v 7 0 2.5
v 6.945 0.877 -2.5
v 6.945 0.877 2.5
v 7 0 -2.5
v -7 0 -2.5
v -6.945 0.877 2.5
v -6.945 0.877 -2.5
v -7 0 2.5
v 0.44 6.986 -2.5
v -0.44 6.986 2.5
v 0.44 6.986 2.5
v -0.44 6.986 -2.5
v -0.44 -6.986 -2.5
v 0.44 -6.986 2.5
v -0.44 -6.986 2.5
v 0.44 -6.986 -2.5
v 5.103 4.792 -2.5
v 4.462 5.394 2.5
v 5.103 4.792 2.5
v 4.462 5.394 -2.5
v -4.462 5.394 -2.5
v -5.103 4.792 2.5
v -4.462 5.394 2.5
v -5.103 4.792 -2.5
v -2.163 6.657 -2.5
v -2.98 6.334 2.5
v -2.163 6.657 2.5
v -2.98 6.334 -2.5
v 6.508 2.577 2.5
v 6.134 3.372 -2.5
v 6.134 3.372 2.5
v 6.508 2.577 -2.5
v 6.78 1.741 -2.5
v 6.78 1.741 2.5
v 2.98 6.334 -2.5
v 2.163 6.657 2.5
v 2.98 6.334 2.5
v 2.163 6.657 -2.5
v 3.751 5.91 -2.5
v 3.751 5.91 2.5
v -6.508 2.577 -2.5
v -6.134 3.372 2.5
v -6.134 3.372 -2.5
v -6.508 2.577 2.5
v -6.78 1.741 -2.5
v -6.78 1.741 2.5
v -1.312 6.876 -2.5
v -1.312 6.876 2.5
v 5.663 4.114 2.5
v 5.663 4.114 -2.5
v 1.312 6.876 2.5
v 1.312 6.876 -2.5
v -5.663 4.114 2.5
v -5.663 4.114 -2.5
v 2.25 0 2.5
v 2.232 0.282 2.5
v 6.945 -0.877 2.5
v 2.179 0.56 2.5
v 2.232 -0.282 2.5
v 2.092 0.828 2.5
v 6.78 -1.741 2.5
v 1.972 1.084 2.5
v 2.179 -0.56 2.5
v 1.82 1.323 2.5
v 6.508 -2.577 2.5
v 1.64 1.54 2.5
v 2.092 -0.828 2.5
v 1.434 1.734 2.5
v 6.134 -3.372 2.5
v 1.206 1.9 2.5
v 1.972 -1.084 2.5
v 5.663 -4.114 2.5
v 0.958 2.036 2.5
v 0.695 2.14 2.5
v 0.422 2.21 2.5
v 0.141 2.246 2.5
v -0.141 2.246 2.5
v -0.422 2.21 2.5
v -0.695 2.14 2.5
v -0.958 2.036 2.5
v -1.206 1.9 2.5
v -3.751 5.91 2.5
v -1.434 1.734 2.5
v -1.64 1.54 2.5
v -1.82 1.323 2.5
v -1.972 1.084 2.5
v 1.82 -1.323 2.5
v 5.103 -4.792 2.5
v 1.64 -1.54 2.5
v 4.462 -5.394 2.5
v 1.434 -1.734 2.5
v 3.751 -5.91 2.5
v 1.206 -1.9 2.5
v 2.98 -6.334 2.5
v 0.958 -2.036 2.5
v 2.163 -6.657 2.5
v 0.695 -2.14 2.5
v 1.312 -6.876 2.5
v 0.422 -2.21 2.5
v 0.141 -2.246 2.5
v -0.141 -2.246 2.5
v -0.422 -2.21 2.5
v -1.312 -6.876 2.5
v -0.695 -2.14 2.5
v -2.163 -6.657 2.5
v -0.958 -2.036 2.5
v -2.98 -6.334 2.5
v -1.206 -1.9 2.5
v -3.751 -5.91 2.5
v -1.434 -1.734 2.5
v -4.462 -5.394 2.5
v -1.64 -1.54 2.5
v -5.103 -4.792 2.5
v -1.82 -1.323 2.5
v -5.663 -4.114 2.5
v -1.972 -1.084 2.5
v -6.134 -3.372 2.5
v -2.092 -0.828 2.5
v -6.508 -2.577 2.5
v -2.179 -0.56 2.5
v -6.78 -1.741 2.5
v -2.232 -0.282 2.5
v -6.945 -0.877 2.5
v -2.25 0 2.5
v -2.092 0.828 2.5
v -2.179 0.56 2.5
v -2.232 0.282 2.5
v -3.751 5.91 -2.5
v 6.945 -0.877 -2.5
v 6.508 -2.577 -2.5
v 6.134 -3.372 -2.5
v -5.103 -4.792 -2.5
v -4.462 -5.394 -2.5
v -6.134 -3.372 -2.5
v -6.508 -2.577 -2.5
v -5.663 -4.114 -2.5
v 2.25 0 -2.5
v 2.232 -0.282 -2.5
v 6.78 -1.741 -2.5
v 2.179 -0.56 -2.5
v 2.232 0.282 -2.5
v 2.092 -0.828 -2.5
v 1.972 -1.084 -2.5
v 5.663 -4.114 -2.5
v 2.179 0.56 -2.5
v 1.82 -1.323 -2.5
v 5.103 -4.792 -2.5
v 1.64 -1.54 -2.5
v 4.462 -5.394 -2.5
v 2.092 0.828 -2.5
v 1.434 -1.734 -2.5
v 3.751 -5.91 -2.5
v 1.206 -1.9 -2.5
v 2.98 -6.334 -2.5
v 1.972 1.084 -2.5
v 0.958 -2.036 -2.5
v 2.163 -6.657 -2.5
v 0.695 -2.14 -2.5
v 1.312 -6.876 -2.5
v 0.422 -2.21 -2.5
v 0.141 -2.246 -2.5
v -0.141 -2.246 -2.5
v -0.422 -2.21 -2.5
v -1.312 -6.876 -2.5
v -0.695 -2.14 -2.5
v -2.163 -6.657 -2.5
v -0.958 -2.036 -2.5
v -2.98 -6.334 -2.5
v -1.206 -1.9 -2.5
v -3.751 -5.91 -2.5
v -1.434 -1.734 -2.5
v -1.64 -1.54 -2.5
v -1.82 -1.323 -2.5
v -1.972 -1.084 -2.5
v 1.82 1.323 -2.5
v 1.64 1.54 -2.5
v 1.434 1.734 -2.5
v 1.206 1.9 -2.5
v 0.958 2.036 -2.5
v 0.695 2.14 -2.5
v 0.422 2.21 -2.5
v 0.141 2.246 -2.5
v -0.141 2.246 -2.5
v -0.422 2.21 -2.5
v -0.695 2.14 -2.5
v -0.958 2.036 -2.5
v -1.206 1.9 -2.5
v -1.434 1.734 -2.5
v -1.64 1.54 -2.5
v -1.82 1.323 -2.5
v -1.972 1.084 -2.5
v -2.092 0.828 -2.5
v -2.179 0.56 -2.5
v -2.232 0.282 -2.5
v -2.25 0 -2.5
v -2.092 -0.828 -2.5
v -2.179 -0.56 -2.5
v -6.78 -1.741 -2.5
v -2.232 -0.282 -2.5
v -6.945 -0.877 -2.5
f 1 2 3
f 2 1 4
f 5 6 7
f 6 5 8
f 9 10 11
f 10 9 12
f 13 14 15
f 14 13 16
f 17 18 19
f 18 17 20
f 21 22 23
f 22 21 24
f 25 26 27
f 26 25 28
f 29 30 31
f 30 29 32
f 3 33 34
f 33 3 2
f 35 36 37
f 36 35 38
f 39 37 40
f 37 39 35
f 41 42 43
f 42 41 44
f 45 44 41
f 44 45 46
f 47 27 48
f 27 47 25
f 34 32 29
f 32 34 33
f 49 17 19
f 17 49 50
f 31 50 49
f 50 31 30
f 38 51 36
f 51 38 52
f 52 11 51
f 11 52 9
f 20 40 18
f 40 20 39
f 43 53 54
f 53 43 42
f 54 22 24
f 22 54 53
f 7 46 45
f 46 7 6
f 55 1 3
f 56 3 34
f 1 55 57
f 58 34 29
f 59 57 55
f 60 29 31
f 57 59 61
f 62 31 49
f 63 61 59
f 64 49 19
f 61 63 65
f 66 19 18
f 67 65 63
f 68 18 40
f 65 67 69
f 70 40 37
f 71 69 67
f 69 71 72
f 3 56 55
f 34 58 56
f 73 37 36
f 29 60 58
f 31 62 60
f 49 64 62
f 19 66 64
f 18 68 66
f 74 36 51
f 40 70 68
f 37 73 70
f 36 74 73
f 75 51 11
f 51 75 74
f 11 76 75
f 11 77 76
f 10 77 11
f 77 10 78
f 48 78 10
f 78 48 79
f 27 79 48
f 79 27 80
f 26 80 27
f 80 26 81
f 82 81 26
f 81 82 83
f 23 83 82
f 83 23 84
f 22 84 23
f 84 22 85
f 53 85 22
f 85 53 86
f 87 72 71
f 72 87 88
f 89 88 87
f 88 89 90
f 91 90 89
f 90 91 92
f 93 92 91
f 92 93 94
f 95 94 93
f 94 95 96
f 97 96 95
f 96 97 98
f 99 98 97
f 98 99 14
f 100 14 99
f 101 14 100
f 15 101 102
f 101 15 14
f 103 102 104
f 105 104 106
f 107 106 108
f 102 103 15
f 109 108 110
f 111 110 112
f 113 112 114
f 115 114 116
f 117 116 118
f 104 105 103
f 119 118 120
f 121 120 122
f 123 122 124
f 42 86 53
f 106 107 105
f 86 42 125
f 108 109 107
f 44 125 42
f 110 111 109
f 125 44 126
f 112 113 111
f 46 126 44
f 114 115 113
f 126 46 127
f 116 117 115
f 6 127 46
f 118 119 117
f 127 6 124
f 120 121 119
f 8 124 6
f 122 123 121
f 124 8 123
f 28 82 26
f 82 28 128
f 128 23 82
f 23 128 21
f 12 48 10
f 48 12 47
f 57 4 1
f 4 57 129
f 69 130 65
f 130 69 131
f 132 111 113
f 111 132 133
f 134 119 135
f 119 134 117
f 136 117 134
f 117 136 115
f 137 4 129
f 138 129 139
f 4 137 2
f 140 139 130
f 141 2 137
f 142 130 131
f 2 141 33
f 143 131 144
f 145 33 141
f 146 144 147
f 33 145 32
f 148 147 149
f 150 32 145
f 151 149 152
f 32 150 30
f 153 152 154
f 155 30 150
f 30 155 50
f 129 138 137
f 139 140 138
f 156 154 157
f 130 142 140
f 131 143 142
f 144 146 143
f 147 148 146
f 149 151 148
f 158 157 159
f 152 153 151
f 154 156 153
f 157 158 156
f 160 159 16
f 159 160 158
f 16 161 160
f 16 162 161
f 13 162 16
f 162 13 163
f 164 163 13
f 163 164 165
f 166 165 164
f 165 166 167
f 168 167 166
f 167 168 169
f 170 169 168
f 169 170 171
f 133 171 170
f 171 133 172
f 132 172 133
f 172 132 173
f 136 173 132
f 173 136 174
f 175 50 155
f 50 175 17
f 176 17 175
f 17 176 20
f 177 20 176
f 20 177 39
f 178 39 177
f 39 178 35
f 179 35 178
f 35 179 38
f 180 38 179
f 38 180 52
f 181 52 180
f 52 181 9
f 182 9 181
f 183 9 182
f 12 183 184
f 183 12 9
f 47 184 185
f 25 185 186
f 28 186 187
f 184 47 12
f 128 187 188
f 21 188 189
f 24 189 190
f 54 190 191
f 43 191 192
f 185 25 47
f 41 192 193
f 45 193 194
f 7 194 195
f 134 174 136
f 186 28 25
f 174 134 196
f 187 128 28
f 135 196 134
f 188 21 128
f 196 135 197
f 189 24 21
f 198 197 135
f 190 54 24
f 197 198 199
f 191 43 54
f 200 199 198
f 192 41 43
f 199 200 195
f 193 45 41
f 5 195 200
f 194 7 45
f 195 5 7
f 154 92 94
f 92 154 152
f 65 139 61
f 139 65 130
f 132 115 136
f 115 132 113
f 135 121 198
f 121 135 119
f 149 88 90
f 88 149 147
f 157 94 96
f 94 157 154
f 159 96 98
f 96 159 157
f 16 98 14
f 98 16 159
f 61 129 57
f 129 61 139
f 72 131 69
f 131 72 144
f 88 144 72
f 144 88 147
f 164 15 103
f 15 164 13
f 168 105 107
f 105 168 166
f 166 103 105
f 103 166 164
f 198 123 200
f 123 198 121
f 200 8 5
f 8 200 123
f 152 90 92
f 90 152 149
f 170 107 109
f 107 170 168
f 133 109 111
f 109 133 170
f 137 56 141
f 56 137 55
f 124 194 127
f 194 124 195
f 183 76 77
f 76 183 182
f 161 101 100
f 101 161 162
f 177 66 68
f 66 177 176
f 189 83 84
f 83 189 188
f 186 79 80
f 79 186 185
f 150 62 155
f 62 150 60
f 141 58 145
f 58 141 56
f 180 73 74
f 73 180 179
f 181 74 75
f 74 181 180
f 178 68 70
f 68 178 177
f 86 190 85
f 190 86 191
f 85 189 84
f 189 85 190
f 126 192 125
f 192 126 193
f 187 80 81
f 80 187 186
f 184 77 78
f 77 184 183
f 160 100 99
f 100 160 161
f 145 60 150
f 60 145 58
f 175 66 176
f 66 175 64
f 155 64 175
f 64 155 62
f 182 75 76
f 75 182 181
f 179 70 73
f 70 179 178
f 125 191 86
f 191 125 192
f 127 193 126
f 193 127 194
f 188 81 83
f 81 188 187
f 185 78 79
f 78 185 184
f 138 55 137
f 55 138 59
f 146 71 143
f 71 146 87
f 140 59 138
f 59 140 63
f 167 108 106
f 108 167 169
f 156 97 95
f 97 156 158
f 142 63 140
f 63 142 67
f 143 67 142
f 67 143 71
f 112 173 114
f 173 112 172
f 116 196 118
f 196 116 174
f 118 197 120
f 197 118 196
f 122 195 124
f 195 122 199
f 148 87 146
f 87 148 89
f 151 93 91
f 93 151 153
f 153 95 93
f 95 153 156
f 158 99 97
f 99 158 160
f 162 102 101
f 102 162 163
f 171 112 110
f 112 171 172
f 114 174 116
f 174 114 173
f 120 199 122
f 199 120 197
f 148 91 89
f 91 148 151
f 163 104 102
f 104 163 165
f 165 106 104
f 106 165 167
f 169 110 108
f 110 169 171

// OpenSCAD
$fn = 50;


difference() {
	union() {
		translate(v = [0, 0, -2.5000000000]) {
			cylinder(h = 5, r = 7.0000000000);
		}
	}
	union() {
		translate(v = [0, 0, -100.0000000000]) {
			cylinder(h = 200, r = 2.2500000000);
		}
	}
}
